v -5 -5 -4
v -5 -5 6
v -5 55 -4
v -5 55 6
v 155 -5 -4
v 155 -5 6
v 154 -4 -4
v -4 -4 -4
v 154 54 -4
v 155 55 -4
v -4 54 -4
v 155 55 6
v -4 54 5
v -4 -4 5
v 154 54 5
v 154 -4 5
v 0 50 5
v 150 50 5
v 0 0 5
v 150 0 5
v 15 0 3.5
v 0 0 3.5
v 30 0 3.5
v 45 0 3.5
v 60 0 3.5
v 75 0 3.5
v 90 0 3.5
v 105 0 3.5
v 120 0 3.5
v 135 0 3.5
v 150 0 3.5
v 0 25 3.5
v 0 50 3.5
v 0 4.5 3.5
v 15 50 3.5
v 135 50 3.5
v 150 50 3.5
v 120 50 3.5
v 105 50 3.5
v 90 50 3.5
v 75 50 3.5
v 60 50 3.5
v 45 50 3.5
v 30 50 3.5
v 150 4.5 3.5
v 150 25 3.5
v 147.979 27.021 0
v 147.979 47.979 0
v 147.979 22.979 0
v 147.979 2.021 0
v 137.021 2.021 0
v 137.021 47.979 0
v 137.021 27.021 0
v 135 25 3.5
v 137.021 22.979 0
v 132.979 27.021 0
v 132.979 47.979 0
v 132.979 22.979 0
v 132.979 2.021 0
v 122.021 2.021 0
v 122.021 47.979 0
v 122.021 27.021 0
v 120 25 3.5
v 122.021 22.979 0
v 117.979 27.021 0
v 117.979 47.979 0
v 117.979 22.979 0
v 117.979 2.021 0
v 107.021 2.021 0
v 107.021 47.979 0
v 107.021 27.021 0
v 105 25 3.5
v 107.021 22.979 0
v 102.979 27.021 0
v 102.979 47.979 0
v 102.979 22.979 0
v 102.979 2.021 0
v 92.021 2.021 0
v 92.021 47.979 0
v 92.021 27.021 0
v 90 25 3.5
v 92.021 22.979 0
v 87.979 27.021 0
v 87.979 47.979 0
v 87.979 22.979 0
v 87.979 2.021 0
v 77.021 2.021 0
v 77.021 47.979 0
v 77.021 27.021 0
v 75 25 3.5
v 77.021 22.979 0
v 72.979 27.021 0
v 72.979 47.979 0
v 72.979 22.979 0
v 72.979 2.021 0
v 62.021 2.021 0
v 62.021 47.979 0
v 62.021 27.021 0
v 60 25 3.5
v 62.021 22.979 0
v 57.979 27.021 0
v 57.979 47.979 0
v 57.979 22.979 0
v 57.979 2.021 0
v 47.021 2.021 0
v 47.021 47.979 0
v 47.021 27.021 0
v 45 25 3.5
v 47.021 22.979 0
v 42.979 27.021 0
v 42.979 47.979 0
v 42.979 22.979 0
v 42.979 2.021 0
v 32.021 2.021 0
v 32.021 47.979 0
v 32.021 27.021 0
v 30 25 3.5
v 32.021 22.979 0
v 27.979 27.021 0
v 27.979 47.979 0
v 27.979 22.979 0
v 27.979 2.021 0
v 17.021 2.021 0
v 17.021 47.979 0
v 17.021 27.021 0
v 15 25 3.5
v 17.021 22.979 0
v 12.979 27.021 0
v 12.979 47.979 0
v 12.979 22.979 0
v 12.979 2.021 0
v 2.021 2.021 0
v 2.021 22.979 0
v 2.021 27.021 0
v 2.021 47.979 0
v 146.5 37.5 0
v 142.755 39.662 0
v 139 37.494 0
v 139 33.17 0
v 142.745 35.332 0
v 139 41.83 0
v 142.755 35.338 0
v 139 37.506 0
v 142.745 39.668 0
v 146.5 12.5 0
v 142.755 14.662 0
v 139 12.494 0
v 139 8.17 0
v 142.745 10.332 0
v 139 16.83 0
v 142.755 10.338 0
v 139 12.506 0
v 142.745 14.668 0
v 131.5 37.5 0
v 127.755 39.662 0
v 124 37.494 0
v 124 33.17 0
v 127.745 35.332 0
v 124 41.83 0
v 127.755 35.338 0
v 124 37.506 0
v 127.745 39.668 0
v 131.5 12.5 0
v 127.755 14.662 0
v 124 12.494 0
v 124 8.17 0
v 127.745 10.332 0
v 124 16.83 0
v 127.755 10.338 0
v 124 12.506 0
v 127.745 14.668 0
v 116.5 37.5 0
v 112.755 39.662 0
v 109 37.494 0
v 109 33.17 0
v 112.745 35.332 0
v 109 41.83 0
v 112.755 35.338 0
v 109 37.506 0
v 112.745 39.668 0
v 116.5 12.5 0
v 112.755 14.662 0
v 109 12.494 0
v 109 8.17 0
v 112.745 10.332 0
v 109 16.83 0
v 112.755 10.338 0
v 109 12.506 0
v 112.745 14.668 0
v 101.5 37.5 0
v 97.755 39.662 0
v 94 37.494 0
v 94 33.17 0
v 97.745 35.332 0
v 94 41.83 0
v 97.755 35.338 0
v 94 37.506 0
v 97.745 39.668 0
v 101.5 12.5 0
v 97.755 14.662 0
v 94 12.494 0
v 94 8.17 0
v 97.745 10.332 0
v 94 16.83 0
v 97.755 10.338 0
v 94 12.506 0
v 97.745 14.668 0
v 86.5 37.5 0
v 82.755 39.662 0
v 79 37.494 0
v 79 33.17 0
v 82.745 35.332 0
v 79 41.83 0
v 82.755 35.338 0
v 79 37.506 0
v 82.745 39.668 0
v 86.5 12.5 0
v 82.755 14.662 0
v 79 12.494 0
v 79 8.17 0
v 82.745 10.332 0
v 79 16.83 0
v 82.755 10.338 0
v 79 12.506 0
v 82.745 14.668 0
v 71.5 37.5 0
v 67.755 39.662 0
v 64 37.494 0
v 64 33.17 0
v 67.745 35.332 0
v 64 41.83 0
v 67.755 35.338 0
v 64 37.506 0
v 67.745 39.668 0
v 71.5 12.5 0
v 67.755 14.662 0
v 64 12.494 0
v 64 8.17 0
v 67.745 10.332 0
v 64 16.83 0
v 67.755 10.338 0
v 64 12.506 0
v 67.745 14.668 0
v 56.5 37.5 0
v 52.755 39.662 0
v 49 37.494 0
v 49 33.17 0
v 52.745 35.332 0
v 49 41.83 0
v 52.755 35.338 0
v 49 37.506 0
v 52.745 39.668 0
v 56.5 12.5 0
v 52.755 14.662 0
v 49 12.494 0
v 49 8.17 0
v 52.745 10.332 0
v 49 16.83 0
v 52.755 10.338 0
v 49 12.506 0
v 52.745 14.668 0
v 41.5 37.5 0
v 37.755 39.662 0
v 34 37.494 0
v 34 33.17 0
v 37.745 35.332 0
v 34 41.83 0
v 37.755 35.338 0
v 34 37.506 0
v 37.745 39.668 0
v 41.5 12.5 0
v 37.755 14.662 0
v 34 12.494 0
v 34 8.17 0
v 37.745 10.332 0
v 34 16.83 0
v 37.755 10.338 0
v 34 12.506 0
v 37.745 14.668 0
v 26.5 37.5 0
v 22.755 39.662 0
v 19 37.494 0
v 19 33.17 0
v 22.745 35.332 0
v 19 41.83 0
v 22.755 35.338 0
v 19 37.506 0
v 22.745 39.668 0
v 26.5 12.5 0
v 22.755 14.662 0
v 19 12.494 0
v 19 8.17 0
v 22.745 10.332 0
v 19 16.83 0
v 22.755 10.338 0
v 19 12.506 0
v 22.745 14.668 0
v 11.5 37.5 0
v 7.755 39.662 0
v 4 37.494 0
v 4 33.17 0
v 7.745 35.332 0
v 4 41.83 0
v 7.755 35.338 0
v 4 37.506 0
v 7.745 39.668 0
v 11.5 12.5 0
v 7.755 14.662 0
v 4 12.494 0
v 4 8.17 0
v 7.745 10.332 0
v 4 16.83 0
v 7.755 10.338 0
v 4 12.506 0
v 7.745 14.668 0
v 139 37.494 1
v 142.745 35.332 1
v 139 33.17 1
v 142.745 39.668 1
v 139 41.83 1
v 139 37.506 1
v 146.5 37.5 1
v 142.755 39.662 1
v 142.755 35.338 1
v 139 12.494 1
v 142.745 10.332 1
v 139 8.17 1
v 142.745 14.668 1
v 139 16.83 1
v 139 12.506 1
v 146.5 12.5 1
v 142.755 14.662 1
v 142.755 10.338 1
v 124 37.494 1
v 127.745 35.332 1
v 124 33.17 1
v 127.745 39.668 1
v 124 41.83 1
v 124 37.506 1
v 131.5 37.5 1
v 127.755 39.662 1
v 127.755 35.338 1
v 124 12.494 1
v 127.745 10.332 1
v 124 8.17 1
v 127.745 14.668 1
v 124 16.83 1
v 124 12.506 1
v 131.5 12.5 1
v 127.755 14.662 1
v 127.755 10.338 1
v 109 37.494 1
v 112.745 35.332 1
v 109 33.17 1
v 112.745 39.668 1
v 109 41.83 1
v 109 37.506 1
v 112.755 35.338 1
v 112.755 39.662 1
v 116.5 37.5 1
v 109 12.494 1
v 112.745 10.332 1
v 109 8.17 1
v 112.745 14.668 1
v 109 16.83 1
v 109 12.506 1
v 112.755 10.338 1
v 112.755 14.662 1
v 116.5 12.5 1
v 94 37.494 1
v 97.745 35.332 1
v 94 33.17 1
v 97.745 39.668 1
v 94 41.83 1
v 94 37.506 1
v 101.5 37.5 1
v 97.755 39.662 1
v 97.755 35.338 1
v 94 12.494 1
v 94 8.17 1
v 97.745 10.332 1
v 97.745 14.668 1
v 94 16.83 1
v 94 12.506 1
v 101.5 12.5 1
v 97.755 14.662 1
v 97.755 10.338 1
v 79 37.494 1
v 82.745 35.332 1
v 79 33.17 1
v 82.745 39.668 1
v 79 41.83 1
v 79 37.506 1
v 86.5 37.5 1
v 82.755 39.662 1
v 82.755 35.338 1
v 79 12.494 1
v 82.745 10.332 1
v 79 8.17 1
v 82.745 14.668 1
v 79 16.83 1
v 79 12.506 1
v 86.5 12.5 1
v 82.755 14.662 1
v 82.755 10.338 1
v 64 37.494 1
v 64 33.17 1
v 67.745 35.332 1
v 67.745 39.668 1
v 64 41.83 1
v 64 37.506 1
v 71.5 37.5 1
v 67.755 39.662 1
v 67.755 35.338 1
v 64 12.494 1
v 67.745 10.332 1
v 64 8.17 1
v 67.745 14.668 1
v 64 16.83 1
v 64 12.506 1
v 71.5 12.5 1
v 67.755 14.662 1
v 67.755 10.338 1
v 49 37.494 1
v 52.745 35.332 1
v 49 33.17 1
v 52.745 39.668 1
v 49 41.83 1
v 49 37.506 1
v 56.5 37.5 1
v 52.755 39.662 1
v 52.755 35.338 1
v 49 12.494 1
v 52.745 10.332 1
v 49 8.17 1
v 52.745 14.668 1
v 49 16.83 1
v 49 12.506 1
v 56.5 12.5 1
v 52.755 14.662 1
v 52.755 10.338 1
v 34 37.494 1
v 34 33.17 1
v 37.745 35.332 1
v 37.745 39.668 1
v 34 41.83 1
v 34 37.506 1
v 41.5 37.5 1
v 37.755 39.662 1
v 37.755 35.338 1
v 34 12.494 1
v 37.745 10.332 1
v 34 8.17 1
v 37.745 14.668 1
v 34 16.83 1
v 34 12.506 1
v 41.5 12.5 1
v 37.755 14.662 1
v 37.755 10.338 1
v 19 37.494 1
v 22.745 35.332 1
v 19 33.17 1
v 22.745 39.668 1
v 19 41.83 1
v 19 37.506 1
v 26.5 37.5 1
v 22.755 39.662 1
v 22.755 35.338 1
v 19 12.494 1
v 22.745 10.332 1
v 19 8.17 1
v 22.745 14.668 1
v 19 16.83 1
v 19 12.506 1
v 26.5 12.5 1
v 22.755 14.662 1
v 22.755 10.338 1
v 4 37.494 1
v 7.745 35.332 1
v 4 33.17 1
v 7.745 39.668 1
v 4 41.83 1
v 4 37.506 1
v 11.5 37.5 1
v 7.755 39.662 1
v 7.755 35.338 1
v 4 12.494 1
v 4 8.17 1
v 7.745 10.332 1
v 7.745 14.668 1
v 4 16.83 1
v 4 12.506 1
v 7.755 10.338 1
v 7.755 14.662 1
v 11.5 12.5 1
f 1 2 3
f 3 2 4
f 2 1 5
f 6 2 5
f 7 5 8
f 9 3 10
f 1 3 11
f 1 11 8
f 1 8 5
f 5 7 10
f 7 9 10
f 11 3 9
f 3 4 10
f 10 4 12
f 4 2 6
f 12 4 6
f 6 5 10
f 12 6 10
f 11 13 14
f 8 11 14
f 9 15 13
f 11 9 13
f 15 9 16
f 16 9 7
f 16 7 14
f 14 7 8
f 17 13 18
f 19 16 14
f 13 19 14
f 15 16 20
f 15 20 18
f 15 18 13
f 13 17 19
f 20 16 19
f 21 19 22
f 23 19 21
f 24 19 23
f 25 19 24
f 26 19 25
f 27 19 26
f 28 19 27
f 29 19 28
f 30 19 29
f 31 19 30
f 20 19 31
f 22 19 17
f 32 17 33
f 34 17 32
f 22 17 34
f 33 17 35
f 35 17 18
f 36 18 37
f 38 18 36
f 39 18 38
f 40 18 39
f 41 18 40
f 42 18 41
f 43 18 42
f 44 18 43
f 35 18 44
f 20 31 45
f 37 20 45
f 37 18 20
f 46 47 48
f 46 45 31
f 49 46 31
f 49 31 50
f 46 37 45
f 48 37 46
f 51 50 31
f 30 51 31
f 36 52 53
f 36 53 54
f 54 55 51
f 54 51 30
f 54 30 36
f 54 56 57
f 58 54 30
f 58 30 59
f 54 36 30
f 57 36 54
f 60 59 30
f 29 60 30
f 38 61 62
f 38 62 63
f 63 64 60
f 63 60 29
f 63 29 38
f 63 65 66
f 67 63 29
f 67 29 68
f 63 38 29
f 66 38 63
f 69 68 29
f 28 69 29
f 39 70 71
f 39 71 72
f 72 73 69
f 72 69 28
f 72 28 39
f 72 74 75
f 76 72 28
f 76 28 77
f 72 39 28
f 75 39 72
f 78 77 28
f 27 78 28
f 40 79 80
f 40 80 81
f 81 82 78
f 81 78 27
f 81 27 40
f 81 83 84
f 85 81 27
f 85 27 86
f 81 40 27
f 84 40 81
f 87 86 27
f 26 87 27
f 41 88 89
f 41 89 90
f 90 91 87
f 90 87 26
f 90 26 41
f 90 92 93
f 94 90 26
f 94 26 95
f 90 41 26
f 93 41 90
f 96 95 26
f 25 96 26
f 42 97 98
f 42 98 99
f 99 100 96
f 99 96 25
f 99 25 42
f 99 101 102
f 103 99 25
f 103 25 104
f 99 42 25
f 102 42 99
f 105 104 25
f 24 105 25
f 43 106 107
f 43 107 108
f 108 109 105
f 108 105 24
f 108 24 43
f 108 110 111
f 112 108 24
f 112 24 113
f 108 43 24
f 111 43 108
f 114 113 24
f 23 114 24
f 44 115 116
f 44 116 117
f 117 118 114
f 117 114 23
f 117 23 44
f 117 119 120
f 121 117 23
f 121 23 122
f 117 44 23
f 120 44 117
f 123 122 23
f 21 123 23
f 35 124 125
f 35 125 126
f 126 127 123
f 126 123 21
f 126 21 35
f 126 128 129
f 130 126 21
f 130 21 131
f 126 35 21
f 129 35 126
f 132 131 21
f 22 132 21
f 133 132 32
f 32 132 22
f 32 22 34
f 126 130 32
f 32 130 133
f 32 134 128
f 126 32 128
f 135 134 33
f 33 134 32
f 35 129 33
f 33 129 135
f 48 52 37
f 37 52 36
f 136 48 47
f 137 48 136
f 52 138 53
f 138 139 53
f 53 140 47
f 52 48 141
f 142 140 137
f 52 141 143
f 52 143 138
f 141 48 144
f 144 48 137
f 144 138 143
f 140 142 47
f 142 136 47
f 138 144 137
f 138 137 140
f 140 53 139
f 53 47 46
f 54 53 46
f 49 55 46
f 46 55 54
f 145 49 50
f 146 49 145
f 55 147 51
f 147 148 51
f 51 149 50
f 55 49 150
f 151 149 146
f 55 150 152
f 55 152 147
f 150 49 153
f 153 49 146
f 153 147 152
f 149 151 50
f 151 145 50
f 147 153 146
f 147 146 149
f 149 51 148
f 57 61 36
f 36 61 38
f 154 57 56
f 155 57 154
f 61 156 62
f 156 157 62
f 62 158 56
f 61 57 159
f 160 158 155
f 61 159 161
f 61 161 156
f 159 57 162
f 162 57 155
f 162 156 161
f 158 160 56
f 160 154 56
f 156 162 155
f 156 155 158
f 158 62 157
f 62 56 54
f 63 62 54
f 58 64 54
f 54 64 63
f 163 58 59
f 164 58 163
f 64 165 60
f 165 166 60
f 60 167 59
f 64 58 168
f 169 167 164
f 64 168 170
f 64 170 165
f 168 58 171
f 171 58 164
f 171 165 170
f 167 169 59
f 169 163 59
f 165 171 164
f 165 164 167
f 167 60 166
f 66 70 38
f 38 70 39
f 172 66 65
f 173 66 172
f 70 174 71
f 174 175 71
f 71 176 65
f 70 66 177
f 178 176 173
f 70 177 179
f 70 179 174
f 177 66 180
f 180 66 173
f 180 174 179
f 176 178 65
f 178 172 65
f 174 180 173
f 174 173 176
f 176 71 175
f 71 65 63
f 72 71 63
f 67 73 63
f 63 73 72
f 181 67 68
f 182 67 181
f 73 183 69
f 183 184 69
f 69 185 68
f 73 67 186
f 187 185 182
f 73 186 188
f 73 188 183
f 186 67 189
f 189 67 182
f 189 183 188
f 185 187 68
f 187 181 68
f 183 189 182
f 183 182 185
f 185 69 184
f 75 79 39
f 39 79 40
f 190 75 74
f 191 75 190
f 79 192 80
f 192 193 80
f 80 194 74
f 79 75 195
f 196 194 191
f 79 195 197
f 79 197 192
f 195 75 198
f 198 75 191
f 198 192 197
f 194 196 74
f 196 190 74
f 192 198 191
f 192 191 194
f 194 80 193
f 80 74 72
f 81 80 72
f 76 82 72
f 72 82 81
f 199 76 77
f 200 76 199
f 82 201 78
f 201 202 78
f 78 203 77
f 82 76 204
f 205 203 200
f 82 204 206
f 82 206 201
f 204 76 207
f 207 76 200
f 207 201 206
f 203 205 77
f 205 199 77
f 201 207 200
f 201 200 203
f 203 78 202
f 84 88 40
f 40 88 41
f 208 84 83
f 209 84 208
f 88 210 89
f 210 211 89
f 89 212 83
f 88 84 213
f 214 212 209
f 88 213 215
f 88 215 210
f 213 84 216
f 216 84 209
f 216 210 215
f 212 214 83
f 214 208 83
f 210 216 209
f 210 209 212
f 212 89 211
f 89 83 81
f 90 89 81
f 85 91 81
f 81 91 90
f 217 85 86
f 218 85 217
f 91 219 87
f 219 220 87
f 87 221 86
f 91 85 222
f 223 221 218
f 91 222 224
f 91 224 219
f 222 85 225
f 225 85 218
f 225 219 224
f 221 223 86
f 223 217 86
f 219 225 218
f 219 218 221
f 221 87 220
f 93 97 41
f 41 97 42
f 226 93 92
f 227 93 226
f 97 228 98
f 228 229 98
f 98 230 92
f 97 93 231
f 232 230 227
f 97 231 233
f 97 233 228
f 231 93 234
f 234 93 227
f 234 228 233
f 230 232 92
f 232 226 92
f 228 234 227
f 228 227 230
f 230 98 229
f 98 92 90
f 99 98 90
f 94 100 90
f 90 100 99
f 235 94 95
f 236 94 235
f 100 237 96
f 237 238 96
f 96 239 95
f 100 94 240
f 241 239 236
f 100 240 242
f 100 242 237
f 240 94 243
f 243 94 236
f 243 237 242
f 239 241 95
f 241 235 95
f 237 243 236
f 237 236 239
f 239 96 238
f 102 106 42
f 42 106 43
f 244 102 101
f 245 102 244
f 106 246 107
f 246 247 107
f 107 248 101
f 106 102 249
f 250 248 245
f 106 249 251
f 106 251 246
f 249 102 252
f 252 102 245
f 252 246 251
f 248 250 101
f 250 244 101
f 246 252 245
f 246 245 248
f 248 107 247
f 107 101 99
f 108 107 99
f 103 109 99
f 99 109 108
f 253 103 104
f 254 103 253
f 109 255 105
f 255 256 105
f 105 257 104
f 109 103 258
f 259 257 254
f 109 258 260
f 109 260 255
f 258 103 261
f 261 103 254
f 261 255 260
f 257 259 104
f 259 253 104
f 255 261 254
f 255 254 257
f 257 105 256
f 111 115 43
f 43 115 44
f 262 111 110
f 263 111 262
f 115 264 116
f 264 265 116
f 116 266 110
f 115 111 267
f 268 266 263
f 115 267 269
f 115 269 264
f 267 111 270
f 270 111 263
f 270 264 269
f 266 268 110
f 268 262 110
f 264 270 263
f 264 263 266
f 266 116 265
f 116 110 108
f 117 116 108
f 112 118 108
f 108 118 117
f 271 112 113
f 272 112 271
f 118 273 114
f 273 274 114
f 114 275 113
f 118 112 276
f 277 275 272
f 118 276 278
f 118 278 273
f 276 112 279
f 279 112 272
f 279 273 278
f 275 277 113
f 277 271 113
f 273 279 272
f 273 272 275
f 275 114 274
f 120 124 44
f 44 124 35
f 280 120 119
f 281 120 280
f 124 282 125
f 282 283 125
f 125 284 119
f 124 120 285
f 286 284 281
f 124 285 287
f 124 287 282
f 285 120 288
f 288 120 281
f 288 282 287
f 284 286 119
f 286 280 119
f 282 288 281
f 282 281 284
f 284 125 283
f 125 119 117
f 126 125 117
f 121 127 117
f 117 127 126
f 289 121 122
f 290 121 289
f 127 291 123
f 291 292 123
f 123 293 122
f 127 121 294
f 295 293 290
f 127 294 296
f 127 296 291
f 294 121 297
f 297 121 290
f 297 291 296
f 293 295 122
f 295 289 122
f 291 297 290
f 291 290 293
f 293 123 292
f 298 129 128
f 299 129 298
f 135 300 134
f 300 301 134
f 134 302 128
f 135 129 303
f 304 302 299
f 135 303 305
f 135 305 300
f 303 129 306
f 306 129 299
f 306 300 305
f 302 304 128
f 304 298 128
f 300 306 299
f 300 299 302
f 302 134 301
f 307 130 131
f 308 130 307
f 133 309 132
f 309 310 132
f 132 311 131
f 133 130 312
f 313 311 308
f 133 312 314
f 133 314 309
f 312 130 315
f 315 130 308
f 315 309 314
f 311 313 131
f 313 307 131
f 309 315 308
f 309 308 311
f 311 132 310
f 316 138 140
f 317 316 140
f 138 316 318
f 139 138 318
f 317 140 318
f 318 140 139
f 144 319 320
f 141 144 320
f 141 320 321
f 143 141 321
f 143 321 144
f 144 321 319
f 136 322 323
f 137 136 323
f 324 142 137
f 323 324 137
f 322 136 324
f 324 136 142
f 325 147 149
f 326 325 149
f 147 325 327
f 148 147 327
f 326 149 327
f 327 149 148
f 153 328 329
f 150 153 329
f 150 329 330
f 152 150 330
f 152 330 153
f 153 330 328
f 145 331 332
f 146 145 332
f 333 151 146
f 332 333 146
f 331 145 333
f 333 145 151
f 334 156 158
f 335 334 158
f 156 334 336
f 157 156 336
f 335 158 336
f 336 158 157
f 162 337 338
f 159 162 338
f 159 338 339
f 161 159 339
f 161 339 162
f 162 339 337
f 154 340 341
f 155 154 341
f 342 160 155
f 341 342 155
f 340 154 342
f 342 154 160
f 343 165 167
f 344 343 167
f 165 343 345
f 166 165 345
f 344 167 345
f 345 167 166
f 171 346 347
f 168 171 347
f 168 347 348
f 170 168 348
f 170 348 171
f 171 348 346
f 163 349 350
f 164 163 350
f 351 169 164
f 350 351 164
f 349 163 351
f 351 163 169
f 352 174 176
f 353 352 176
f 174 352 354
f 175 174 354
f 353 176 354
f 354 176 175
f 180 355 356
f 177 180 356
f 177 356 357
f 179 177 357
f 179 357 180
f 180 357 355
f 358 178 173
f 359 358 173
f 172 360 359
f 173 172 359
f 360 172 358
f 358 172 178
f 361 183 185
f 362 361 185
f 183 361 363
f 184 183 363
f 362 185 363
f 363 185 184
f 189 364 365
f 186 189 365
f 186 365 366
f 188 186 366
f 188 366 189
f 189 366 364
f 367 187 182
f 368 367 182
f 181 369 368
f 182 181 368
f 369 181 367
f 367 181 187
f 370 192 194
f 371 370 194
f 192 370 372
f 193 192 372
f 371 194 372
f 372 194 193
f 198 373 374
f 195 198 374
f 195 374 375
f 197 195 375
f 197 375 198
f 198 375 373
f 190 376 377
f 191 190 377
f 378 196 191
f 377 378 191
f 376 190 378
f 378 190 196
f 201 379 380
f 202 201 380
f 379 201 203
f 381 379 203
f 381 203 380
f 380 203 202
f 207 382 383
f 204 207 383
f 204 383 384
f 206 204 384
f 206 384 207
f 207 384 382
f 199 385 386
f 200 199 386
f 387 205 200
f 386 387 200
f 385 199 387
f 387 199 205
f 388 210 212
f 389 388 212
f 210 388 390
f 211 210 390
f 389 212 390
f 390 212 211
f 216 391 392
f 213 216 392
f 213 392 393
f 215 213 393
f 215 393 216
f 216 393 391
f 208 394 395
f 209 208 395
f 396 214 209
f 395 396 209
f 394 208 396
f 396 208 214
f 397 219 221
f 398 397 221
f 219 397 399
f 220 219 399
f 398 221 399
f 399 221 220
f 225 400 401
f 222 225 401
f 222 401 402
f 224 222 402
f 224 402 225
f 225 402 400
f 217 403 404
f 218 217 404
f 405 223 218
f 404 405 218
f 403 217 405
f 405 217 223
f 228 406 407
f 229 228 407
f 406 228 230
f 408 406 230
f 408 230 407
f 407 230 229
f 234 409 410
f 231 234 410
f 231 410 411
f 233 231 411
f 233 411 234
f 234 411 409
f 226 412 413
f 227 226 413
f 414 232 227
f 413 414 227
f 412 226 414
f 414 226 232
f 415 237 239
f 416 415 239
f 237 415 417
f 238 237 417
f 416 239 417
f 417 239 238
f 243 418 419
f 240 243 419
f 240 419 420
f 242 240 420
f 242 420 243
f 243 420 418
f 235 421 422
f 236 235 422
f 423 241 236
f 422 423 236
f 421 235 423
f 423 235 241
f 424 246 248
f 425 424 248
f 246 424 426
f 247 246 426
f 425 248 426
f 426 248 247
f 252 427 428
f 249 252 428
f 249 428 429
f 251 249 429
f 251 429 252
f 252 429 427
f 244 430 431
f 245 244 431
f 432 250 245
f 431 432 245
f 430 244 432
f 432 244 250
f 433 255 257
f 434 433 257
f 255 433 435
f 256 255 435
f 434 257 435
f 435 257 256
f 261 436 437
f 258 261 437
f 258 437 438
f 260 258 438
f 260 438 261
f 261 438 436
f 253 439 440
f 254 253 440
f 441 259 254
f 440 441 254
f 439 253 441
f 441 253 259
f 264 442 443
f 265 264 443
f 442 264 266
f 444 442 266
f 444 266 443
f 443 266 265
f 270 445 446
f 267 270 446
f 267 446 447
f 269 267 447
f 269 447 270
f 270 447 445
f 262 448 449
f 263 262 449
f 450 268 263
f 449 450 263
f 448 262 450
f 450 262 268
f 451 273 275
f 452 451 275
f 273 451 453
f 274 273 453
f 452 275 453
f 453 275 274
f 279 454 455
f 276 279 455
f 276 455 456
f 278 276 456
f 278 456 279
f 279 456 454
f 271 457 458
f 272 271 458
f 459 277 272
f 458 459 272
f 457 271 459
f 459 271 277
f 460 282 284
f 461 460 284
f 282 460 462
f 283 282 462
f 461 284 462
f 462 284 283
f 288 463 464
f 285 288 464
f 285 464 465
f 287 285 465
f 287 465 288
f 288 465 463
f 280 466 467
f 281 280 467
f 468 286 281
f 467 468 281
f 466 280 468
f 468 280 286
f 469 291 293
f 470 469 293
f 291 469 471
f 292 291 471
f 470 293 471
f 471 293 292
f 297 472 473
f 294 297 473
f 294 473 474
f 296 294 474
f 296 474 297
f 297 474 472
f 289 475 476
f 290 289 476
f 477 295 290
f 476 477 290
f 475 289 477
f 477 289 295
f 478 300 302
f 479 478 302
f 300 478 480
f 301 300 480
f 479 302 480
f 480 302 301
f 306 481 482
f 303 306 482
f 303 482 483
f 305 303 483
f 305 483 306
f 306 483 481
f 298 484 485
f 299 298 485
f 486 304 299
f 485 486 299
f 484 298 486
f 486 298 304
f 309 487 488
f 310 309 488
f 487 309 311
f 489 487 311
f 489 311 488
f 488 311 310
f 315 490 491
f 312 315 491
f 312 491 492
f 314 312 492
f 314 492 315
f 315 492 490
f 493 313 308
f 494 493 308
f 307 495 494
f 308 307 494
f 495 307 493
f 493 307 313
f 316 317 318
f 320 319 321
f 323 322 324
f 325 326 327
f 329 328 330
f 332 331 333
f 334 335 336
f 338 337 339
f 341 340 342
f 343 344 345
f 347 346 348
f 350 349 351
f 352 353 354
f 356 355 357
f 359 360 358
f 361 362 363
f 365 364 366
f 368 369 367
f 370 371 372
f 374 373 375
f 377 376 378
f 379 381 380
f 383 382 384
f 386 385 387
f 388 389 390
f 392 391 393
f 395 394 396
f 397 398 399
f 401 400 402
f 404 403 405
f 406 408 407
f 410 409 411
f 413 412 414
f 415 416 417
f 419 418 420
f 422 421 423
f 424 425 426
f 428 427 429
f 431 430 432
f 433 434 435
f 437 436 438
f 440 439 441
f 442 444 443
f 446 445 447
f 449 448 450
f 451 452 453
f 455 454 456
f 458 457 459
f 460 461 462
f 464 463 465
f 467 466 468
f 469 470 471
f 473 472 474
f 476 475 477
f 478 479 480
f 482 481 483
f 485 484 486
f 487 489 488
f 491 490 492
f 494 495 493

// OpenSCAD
$fn=3;

union(){
	translate([-4,-4,-4]) difference(){
		translate([-1,-1,0]) cube([160,60,10]);
		translate([0,0,-1]) cube([158,58,10]);
	}

	difference(){
		cube([150,50,5]);
		for (i = [0:10]){
			translate([i*15,-0.5,-1.5]) rotate([-90,-90,0]) cylinder(h=51, r=5);
		}
		for (i = [0:2]){
			translate([-0.5,i*25,-1.5]) rotate([180,-90,0]) cylinder(h=151, r=5);
		}
		difference(){
			for (i = [0:1]){
				for (j = [0:9]){
					translate([j*15+6.5,i*25+12.5,-0.5]) difference(){
						cylinder(h=1.5,r=5);
						rotate([0,0,180]) cylinder(h=1.5, r=2.51);
					}
				}
			}
		}
	}
}
